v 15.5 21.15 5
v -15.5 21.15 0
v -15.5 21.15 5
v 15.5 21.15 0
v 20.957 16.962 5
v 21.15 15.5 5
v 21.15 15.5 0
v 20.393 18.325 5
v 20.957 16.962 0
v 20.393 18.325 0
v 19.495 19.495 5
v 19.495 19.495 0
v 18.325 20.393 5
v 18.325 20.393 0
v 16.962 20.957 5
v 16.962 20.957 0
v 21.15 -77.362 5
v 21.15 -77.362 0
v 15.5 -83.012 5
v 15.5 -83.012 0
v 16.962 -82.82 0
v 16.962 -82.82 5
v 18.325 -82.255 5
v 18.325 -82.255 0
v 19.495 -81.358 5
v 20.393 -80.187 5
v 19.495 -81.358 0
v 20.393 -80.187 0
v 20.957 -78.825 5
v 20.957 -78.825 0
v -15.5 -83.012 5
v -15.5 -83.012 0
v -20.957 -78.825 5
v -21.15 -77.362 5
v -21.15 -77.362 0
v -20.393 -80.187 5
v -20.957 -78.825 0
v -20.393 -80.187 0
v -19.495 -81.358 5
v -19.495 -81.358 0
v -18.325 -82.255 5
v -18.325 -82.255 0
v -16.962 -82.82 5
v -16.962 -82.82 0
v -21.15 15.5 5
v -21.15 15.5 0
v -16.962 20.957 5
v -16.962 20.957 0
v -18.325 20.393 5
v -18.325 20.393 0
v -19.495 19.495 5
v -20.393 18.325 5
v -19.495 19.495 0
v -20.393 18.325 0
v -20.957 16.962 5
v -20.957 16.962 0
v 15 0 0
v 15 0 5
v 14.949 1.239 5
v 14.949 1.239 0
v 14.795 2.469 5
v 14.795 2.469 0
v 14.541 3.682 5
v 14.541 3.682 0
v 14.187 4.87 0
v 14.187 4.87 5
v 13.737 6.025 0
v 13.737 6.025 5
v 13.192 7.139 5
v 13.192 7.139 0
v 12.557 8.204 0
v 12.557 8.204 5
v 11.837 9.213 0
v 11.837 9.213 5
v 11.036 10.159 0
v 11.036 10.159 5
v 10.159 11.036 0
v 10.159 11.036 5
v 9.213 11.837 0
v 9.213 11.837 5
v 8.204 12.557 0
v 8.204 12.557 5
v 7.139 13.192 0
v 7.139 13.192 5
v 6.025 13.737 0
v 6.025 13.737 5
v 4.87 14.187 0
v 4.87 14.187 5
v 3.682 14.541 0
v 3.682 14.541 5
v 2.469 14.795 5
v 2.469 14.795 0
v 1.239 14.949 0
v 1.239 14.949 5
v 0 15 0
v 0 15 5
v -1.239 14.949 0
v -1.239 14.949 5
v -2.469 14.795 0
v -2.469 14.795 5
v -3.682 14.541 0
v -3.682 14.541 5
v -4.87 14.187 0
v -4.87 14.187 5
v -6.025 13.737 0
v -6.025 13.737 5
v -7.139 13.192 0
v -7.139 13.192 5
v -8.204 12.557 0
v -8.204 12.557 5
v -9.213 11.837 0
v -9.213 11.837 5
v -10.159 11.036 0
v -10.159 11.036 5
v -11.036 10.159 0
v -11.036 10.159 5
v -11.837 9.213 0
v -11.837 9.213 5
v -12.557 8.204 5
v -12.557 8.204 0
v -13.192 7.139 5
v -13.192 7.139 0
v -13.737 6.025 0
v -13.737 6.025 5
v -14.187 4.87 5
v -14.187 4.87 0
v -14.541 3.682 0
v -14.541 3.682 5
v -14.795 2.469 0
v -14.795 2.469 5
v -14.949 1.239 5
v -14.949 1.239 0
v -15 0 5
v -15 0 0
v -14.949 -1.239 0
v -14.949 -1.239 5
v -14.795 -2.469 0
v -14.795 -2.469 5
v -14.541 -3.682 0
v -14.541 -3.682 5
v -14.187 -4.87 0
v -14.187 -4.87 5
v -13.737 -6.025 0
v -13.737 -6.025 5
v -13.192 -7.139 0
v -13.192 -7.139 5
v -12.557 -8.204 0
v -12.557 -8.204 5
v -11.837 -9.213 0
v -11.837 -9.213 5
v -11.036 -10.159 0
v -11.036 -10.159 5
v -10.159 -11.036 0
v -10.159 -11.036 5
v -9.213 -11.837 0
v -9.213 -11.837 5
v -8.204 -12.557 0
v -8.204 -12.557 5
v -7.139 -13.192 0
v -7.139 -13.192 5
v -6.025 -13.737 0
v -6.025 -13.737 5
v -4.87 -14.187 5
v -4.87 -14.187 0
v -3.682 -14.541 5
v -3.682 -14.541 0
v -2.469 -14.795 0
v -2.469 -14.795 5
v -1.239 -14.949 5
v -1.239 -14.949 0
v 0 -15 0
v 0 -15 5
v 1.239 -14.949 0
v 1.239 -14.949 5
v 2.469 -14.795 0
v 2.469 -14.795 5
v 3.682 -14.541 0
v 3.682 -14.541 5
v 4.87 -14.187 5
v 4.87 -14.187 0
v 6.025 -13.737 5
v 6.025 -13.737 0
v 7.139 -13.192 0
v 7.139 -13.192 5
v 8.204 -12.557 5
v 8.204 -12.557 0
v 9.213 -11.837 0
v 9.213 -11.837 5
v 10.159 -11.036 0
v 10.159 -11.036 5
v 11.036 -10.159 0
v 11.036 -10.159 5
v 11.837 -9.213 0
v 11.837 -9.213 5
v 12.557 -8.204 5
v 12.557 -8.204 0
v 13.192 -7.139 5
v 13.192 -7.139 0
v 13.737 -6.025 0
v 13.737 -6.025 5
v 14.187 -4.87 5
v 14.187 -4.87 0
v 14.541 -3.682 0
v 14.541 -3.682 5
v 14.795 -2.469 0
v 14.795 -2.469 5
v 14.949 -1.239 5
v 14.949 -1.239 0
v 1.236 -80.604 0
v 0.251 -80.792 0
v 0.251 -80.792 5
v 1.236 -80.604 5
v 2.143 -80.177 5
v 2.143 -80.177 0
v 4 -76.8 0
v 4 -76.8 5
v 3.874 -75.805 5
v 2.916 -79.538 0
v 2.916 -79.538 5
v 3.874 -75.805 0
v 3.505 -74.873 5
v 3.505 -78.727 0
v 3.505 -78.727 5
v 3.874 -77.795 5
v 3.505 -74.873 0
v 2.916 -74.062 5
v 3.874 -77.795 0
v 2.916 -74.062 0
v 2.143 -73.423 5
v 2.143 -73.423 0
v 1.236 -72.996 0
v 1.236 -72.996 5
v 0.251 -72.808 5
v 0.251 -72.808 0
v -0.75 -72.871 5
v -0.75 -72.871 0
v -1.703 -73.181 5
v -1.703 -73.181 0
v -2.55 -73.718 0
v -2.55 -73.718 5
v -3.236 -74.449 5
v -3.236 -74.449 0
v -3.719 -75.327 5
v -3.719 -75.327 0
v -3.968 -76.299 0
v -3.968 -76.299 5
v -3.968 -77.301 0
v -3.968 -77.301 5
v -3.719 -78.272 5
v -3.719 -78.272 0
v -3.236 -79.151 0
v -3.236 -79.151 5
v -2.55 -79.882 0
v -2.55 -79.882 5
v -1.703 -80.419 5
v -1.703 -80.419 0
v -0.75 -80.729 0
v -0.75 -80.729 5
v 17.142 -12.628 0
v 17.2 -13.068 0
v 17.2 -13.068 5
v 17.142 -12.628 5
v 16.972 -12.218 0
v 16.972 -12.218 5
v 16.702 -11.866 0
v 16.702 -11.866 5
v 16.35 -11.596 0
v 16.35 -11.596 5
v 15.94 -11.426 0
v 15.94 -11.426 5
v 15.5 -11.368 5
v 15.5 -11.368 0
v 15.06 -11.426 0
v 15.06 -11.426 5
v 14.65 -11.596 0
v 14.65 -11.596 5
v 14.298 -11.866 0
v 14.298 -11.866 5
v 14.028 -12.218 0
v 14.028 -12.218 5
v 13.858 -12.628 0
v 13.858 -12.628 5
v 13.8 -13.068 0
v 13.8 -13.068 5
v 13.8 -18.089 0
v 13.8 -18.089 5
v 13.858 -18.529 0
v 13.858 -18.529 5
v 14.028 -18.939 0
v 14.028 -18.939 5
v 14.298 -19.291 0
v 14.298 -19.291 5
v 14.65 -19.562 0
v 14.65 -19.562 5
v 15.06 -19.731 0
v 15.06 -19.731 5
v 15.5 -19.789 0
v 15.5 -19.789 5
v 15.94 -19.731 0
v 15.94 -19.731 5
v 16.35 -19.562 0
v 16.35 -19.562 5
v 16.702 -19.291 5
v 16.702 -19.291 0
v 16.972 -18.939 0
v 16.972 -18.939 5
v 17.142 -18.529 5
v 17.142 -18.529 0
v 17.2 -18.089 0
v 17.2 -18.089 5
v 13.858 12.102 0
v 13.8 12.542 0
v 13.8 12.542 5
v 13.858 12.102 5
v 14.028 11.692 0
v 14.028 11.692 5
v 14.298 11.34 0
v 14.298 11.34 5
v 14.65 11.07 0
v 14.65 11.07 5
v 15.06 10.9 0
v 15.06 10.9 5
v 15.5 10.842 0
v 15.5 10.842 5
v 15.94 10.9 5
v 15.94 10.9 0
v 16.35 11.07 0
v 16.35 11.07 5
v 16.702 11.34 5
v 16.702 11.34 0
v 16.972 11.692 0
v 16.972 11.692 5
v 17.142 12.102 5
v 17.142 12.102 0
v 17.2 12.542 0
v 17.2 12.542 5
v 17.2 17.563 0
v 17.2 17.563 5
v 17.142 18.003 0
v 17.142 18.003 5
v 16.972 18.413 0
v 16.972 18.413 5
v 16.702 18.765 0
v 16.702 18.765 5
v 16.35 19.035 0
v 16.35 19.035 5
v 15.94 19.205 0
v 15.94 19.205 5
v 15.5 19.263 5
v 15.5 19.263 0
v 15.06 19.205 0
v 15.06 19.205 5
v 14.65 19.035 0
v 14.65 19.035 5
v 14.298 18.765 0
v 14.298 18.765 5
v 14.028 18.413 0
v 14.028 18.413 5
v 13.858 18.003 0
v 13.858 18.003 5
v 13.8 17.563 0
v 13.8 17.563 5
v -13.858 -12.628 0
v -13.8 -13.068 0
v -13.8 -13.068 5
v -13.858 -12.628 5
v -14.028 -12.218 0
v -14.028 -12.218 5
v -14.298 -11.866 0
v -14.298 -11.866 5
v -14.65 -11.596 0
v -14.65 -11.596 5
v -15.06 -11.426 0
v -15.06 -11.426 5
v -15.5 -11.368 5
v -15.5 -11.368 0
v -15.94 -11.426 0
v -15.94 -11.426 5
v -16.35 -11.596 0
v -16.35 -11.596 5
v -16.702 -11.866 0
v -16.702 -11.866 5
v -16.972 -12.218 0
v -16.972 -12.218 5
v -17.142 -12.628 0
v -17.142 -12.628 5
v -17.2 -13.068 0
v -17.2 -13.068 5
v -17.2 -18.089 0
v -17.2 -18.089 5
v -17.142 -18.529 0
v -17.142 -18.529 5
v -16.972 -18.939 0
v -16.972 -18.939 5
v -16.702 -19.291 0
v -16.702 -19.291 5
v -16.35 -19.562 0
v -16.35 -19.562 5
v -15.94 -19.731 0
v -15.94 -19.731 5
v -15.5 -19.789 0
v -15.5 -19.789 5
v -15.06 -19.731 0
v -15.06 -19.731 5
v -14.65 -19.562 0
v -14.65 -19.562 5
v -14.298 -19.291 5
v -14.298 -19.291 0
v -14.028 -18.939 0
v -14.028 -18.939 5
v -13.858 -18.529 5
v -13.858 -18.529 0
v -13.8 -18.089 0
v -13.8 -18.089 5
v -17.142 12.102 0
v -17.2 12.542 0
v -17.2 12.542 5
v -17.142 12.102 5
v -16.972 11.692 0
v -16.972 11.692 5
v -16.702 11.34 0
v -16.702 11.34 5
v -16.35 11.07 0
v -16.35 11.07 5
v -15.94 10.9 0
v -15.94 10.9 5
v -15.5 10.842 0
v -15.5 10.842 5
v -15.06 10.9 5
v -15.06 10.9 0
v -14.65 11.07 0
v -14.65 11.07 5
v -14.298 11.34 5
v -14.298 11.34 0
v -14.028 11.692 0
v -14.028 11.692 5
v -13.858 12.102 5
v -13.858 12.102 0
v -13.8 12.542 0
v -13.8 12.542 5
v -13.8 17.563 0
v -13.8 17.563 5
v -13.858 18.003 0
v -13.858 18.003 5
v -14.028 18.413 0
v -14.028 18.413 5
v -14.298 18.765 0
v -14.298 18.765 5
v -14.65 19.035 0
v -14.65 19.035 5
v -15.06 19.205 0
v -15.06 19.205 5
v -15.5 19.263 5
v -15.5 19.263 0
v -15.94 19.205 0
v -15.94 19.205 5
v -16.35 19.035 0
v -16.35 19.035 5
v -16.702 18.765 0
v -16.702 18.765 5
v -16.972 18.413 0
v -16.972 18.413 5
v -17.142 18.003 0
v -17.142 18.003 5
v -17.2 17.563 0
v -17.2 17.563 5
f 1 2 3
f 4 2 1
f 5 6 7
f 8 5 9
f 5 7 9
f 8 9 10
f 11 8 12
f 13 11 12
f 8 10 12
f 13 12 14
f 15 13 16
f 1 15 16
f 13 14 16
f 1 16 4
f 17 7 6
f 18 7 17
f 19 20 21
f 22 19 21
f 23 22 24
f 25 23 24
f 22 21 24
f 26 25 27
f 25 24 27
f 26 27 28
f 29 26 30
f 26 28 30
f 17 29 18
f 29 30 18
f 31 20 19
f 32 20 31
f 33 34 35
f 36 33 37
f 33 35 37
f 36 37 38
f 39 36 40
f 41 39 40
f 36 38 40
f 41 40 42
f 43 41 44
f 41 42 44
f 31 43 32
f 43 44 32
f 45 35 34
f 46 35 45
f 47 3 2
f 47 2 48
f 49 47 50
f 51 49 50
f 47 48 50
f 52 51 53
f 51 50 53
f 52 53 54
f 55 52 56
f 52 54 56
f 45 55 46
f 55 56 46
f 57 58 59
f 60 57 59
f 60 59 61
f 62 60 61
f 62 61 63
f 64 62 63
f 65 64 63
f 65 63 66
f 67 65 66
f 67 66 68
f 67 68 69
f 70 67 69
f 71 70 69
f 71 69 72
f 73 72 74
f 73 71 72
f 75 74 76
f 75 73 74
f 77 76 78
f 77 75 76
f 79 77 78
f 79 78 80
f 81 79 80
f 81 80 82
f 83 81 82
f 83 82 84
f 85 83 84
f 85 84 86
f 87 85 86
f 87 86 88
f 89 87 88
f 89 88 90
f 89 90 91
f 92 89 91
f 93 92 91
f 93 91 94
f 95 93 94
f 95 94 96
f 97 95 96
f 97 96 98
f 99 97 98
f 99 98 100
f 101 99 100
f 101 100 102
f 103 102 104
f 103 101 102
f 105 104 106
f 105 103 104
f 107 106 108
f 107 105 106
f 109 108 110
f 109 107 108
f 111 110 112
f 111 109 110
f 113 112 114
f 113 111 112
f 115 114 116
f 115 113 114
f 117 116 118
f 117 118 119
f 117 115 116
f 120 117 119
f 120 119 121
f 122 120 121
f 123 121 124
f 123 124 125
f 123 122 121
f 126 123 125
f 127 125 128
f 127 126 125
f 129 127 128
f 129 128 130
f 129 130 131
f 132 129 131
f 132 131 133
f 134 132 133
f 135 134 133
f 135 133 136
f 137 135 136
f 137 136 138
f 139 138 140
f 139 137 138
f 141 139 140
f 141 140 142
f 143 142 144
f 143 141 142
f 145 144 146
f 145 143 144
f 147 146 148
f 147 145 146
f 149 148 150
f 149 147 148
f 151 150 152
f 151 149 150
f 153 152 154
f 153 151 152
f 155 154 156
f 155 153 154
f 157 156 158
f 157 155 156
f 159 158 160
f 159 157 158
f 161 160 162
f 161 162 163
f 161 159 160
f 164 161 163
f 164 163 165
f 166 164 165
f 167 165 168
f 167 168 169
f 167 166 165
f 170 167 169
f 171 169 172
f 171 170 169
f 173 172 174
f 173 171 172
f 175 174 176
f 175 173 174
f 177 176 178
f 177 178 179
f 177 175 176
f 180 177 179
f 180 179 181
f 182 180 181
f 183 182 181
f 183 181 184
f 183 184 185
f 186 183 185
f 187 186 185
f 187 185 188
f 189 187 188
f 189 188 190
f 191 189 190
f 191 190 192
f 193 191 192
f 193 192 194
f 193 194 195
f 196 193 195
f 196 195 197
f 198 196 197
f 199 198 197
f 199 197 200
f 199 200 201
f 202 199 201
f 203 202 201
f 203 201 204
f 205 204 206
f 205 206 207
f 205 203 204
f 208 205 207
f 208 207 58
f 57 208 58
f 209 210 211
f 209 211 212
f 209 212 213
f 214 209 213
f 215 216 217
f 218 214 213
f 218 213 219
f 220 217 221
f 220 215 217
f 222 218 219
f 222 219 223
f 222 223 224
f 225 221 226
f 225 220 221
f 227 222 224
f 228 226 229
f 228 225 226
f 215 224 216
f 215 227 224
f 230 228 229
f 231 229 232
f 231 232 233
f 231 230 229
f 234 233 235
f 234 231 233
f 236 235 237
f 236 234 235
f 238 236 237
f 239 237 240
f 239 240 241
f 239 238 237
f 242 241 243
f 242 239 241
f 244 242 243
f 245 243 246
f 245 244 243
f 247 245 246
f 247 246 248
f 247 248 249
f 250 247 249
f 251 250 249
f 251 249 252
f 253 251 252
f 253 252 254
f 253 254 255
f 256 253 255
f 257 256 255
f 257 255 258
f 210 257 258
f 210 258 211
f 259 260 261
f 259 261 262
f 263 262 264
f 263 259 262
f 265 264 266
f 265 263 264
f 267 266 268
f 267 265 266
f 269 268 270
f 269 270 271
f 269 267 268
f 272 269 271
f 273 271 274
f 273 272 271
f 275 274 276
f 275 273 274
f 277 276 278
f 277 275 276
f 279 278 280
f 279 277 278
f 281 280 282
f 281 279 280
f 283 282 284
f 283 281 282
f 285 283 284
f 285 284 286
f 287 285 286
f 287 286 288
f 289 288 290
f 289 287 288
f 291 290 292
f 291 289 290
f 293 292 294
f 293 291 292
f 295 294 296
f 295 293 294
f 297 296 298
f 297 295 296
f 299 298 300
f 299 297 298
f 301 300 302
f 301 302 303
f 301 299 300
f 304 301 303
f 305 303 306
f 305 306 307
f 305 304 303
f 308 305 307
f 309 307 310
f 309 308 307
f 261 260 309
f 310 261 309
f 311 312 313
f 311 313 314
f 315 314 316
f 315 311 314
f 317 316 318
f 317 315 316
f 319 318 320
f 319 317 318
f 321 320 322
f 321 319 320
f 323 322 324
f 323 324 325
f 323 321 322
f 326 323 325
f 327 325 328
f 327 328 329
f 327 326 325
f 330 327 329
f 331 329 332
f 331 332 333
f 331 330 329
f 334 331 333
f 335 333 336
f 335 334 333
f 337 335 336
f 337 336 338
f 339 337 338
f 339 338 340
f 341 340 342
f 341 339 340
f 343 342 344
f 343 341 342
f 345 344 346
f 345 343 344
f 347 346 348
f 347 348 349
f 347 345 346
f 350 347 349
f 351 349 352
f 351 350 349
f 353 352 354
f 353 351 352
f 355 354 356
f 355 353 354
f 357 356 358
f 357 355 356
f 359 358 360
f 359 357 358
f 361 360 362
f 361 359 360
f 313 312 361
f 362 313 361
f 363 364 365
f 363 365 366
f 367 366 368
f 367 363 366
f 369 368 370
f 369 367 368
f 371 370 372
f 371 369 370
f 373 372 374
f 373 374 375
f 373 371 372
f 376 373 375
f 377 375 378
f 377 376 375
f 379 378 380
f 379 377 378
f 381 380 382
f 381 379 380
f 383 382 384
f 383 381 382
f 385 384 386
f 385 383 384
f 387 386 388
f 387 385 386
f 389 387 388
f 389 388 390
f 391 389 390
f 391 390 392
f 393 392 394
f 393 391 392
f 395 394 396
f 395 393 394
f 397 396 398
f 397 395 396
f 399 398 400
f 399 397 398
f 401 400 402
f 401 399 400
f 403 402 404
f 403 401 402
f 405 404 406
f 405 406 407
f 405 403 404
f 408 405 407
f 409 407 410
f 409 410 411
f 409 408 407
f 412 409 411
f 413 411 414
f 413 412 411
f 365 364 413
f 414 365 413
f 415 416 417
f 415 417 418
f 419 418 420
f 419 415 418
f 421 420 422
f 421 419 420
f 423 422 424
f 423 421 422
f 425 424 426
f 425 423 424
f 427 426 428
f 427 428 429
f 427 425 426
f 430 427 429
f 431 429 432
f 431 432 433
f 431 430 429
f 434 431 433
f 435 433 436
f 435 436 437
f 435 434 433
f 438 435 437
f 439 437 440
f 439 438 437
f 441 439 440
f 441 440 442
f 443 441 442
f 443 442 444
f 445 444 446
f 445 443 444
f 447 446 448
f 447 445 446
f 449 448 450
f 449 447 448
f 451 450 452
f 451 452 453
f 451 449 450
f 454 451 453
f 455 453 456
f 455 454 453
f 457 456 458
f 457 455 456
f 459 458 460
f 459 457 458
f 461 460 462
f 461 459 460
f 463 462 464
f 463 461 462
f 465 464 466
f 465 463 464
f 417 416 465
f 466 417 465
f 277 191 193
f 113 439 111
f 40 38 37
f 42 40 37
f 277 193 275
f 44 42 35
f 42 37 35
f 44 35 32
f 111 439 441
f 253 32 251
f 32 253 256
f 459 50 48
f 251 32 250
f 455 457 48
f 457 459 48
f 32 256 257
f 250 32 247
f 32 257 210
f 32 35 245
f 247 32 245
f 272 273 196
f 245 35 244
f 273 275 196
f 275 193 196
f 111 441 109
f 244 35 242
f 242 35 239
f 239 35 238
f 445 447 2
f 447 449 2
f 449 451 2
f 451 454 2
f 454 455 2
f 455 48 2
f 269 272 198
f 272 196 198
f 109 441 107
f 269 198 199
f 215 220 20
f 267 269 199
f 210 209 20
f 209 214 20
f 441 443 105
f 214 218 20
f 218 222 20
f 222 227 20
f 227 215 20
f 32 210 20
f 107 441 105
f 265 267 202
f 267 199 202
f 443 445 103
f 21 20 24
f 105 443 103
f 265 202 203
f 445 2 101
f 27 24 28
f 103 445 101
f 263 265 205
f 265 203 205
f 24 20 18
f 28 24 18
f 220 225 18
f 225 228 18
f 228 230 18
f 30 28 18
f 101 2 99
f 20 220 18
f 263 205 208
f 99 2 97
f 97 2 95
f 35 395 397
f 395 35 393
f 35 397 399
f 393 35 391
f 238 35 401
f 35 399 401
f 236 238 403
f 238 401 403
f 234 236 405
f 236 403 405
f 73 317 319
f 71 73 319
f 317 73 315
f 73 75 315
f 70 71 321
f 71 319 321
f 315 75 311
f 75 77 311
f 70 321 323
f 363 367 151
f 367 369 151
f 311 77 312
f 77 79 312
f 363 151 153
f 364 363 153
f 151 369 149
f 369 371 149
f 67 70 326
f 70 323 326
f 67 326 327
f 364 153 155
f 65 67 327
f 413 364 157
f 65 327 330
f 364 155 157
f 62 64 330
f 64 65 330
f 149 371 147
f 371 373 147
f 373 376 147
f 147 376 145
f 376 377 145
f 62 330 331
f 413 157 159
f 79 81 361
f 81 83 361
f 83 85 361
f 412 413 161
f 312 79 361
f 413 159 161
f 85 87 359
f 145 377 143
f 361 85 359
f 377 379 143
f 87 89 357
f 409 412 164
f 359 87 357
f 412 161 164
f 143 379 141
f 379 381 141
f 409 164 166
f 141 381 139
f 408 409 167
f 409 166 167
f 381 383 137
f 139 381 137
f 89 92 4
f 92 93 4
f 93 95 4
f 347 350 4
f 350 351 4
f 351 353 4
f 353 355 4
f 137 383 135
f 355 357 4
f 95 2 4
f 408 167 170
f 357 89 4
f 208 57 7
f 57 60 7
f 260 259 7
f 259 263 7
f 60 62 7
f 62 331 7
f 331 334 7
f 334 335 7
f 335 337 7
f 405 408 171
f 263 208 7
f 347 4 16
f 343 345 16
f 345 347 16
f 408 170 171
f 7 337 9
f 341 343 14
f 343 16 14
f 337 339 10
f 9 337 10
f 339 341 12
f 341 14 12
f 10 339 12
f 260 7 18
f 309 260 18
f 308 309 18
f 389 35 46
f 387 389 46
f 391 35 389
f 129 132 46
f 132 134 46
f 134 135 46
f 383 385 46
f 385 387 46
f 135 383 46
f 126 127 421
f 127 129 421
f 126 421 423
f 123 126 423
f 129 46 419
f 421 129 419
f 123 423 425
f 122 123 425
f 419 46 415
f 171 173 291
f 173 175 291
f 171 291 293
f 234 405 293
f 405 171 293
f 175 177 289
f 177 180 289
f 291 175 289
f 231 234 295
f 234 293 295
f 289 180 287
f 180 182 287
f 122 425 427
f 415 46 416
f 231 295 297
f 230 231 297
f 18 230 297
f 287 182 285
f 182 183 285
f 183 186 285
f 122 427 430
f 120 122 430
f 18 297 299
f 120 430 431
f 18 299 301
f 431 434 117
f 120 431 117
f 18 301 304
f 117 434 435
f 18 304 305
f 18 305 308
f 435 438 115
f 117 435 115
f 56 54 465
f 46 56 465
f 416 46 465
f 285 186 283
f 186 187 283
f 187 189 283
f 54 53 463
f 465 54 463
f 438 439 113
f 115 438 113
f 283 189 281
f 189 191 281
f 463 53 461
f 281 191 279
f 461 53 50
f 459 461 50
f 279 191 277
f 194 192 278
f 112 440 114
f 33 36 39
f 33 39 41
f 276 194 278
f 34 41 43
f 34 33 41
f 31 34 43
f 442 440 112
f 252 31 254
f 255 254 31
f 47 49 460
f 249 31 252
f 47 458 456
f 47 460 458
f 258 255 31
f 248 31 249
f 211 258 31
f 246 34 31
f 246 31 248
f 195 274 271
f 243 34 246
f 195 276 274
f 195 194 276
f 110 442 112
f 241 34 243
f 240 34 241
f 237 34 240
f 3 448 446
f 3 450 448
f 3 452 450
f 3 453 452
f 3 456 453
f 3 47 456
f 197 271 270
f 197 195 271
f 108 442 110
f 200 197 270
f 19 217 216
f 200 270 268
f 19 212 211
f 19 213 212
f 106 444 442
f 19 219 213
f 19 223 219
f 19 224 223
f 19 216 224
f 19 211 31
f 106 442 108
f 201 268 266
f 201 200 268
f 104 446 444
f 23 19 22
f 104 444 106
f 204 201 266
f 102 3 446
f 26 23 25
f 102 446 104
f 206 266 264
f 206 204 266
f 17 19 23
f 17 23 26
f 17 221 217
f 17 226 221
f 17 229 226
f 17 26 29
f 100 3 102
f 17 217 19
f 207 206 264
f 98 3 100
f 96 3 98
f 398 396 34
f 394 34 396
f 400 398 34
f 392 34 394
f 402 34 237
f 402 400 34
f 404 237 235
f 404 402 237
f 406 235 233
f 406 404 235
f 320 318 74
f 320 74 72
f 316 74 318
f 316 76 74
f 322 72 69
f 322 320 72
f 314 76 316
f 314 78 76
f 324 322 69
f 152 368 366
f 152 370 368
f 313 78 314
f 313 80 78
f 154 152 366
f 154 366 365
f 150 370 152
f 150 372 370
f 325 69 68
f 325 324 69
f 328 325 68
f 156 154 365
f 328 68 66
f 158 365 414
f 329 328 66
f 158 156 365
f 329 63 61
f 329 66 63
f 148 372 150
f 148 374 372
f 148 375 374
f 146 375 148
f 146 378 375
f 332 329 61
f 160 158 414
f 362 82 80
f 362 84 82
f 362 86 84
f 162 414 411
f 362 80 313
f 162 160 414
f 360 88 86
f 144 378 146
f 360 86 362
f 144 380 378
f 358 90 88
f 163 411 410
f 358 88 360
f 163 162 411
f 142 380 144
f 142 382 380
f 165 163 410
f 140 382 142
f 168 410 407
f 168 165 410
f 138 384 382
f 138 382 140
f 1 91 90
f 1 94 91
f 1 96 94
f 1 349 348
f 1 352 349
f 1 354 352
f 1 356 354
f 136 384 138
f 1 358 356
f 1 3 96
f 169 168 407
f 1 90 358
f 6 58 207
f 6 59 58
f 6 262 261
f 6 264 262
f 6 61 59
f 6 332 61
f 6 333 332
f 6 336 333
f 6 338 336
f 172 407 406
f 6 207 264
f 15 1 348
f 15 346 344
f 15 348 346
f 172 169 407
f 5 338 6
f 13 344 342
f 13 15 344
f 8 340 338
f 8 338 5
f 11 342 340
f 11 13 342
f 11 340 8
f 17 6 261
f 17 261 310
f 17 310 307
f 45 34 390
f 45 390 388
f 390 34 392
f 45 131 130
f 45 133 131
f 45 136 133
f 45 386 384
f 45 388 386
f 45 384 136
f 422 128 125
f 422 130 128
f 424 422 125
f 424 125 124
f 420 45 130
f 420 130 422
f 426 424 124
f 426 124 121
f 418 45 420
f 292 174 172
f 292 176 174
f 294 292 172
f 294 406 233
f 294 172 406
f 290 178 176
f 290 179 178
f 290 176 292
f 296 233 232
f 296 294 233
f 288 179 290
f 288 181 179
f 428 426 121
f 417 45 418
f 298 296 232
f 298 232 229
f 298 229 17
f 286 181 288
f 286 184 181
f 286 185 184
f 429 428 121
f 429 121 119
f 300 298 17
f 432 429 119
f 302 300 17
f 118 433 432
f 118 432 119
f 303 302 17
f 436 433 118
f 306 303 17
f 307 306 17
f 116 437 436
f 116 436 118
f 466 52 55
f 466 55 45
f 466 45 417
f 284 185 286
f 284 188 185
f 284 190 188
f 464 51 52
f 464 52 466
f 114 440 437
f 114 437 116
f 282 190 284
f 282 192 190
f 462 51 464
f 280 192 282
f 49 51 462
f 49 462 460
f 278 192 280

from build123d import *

# Parameters (mm, degrees)
SKETCH_R   = 4
SKETCH_R_2 = 15
PAD_DEPTH  = 5


with BuildPart() as part:
    # Sketch → Pad (new body)
    with BuildSketch(Plane.XY):
        with BuildLine():
            Line((-15.5, 21.15), (15.5, 21.15))
            ThreePointArc((21.15, 15.5), (19.495153, 19.495153), (15.5, 21.15))
            Line((21.15, 15.5), (21.15, -77.362437))
            ThreePointArc((15.5, -83.012437), (19.495153, -81.35759), (21.15, -77.362437))
            Line((15.5, -83.012437), (-15.5, -83.012437))
            ThreePointArc((-21.15, -77.362437), (-19.495153, -81.35759), (-15.5, -83.012437))
            Line((-21.15, -77.362437), (-21.15, 15.5))
            ThreePointArc((-15.5, 21.15), (-19.495153, 19.495153), (-21.15, 15.5))
        make_face()
        with Locations((0, -76.8)):
            Circle(SKETCH_R, mode=Mode.SUBTRACT)
        Circle(SKETCH_R_2, mode=Mode.SUBTRACT)
        with BuildLine():
            ThreePointArc((-17.2, 12.542002), (-15.5, 10.842002), (-13.8, 12.542002))
            Line((-13.8, 12.542002), (-13.8, 17.562841))
            ThreePointArc((-13.8, 17.562841), (-15.5, 19.262841), (-17.2, 17.562841))
            Line((-17.2, 12.542002), (-17.2, 17.562841))
        make_face(mode=Mode.SUBTRACT)
        with BuildLine():
            ThreePointArc((13.8, 12.542002), (15.5, 10.842002), (17.2, 12.542002))
            Line((17.2, 12.542002), (17.2, 17.562841))
            ThreePointArc((17.2, 17.562841), (15.5, 19.262841), (13.8, 17.562841))
            Line((13.8, 12.542002), (13.8, 17.562841))
        make_face(mode=Mode.SUBTRACT)
        with BuildLine():
            ThreePointArc((-13.8, -13.068467), (-15.5, -11.368467), (-17.2, -13.068467))
            Line((-17.2, -13.068467), (-17.2, -18.089305))
            ThreePointArc((-17.2, -18.089305), (-15.5, -19.789305), (-13.8, -18.089305))
            Line((-13.8, -13.068467), (-13.8, -18.089305))
        make_face(mode=Mode.SUBTRACT)
        with BuildLine():
            ThreePointArc((17.2, -13.068467), (15.5, -11.368467), (13.8, -13.068467))
            Line((13.8, -13.068467), (13.8, -18.089305))
            ThreePointArc((13.8, -18.089305), (15.5, -19.789305), (17.2, -18.089305))
            Line((17.2, -13.068467), (17.2, -18.089305))
        make_face(mode=Mode.SUBTRACT)
    extrude(amount=PAD_DEPTH)


solid = part.part
